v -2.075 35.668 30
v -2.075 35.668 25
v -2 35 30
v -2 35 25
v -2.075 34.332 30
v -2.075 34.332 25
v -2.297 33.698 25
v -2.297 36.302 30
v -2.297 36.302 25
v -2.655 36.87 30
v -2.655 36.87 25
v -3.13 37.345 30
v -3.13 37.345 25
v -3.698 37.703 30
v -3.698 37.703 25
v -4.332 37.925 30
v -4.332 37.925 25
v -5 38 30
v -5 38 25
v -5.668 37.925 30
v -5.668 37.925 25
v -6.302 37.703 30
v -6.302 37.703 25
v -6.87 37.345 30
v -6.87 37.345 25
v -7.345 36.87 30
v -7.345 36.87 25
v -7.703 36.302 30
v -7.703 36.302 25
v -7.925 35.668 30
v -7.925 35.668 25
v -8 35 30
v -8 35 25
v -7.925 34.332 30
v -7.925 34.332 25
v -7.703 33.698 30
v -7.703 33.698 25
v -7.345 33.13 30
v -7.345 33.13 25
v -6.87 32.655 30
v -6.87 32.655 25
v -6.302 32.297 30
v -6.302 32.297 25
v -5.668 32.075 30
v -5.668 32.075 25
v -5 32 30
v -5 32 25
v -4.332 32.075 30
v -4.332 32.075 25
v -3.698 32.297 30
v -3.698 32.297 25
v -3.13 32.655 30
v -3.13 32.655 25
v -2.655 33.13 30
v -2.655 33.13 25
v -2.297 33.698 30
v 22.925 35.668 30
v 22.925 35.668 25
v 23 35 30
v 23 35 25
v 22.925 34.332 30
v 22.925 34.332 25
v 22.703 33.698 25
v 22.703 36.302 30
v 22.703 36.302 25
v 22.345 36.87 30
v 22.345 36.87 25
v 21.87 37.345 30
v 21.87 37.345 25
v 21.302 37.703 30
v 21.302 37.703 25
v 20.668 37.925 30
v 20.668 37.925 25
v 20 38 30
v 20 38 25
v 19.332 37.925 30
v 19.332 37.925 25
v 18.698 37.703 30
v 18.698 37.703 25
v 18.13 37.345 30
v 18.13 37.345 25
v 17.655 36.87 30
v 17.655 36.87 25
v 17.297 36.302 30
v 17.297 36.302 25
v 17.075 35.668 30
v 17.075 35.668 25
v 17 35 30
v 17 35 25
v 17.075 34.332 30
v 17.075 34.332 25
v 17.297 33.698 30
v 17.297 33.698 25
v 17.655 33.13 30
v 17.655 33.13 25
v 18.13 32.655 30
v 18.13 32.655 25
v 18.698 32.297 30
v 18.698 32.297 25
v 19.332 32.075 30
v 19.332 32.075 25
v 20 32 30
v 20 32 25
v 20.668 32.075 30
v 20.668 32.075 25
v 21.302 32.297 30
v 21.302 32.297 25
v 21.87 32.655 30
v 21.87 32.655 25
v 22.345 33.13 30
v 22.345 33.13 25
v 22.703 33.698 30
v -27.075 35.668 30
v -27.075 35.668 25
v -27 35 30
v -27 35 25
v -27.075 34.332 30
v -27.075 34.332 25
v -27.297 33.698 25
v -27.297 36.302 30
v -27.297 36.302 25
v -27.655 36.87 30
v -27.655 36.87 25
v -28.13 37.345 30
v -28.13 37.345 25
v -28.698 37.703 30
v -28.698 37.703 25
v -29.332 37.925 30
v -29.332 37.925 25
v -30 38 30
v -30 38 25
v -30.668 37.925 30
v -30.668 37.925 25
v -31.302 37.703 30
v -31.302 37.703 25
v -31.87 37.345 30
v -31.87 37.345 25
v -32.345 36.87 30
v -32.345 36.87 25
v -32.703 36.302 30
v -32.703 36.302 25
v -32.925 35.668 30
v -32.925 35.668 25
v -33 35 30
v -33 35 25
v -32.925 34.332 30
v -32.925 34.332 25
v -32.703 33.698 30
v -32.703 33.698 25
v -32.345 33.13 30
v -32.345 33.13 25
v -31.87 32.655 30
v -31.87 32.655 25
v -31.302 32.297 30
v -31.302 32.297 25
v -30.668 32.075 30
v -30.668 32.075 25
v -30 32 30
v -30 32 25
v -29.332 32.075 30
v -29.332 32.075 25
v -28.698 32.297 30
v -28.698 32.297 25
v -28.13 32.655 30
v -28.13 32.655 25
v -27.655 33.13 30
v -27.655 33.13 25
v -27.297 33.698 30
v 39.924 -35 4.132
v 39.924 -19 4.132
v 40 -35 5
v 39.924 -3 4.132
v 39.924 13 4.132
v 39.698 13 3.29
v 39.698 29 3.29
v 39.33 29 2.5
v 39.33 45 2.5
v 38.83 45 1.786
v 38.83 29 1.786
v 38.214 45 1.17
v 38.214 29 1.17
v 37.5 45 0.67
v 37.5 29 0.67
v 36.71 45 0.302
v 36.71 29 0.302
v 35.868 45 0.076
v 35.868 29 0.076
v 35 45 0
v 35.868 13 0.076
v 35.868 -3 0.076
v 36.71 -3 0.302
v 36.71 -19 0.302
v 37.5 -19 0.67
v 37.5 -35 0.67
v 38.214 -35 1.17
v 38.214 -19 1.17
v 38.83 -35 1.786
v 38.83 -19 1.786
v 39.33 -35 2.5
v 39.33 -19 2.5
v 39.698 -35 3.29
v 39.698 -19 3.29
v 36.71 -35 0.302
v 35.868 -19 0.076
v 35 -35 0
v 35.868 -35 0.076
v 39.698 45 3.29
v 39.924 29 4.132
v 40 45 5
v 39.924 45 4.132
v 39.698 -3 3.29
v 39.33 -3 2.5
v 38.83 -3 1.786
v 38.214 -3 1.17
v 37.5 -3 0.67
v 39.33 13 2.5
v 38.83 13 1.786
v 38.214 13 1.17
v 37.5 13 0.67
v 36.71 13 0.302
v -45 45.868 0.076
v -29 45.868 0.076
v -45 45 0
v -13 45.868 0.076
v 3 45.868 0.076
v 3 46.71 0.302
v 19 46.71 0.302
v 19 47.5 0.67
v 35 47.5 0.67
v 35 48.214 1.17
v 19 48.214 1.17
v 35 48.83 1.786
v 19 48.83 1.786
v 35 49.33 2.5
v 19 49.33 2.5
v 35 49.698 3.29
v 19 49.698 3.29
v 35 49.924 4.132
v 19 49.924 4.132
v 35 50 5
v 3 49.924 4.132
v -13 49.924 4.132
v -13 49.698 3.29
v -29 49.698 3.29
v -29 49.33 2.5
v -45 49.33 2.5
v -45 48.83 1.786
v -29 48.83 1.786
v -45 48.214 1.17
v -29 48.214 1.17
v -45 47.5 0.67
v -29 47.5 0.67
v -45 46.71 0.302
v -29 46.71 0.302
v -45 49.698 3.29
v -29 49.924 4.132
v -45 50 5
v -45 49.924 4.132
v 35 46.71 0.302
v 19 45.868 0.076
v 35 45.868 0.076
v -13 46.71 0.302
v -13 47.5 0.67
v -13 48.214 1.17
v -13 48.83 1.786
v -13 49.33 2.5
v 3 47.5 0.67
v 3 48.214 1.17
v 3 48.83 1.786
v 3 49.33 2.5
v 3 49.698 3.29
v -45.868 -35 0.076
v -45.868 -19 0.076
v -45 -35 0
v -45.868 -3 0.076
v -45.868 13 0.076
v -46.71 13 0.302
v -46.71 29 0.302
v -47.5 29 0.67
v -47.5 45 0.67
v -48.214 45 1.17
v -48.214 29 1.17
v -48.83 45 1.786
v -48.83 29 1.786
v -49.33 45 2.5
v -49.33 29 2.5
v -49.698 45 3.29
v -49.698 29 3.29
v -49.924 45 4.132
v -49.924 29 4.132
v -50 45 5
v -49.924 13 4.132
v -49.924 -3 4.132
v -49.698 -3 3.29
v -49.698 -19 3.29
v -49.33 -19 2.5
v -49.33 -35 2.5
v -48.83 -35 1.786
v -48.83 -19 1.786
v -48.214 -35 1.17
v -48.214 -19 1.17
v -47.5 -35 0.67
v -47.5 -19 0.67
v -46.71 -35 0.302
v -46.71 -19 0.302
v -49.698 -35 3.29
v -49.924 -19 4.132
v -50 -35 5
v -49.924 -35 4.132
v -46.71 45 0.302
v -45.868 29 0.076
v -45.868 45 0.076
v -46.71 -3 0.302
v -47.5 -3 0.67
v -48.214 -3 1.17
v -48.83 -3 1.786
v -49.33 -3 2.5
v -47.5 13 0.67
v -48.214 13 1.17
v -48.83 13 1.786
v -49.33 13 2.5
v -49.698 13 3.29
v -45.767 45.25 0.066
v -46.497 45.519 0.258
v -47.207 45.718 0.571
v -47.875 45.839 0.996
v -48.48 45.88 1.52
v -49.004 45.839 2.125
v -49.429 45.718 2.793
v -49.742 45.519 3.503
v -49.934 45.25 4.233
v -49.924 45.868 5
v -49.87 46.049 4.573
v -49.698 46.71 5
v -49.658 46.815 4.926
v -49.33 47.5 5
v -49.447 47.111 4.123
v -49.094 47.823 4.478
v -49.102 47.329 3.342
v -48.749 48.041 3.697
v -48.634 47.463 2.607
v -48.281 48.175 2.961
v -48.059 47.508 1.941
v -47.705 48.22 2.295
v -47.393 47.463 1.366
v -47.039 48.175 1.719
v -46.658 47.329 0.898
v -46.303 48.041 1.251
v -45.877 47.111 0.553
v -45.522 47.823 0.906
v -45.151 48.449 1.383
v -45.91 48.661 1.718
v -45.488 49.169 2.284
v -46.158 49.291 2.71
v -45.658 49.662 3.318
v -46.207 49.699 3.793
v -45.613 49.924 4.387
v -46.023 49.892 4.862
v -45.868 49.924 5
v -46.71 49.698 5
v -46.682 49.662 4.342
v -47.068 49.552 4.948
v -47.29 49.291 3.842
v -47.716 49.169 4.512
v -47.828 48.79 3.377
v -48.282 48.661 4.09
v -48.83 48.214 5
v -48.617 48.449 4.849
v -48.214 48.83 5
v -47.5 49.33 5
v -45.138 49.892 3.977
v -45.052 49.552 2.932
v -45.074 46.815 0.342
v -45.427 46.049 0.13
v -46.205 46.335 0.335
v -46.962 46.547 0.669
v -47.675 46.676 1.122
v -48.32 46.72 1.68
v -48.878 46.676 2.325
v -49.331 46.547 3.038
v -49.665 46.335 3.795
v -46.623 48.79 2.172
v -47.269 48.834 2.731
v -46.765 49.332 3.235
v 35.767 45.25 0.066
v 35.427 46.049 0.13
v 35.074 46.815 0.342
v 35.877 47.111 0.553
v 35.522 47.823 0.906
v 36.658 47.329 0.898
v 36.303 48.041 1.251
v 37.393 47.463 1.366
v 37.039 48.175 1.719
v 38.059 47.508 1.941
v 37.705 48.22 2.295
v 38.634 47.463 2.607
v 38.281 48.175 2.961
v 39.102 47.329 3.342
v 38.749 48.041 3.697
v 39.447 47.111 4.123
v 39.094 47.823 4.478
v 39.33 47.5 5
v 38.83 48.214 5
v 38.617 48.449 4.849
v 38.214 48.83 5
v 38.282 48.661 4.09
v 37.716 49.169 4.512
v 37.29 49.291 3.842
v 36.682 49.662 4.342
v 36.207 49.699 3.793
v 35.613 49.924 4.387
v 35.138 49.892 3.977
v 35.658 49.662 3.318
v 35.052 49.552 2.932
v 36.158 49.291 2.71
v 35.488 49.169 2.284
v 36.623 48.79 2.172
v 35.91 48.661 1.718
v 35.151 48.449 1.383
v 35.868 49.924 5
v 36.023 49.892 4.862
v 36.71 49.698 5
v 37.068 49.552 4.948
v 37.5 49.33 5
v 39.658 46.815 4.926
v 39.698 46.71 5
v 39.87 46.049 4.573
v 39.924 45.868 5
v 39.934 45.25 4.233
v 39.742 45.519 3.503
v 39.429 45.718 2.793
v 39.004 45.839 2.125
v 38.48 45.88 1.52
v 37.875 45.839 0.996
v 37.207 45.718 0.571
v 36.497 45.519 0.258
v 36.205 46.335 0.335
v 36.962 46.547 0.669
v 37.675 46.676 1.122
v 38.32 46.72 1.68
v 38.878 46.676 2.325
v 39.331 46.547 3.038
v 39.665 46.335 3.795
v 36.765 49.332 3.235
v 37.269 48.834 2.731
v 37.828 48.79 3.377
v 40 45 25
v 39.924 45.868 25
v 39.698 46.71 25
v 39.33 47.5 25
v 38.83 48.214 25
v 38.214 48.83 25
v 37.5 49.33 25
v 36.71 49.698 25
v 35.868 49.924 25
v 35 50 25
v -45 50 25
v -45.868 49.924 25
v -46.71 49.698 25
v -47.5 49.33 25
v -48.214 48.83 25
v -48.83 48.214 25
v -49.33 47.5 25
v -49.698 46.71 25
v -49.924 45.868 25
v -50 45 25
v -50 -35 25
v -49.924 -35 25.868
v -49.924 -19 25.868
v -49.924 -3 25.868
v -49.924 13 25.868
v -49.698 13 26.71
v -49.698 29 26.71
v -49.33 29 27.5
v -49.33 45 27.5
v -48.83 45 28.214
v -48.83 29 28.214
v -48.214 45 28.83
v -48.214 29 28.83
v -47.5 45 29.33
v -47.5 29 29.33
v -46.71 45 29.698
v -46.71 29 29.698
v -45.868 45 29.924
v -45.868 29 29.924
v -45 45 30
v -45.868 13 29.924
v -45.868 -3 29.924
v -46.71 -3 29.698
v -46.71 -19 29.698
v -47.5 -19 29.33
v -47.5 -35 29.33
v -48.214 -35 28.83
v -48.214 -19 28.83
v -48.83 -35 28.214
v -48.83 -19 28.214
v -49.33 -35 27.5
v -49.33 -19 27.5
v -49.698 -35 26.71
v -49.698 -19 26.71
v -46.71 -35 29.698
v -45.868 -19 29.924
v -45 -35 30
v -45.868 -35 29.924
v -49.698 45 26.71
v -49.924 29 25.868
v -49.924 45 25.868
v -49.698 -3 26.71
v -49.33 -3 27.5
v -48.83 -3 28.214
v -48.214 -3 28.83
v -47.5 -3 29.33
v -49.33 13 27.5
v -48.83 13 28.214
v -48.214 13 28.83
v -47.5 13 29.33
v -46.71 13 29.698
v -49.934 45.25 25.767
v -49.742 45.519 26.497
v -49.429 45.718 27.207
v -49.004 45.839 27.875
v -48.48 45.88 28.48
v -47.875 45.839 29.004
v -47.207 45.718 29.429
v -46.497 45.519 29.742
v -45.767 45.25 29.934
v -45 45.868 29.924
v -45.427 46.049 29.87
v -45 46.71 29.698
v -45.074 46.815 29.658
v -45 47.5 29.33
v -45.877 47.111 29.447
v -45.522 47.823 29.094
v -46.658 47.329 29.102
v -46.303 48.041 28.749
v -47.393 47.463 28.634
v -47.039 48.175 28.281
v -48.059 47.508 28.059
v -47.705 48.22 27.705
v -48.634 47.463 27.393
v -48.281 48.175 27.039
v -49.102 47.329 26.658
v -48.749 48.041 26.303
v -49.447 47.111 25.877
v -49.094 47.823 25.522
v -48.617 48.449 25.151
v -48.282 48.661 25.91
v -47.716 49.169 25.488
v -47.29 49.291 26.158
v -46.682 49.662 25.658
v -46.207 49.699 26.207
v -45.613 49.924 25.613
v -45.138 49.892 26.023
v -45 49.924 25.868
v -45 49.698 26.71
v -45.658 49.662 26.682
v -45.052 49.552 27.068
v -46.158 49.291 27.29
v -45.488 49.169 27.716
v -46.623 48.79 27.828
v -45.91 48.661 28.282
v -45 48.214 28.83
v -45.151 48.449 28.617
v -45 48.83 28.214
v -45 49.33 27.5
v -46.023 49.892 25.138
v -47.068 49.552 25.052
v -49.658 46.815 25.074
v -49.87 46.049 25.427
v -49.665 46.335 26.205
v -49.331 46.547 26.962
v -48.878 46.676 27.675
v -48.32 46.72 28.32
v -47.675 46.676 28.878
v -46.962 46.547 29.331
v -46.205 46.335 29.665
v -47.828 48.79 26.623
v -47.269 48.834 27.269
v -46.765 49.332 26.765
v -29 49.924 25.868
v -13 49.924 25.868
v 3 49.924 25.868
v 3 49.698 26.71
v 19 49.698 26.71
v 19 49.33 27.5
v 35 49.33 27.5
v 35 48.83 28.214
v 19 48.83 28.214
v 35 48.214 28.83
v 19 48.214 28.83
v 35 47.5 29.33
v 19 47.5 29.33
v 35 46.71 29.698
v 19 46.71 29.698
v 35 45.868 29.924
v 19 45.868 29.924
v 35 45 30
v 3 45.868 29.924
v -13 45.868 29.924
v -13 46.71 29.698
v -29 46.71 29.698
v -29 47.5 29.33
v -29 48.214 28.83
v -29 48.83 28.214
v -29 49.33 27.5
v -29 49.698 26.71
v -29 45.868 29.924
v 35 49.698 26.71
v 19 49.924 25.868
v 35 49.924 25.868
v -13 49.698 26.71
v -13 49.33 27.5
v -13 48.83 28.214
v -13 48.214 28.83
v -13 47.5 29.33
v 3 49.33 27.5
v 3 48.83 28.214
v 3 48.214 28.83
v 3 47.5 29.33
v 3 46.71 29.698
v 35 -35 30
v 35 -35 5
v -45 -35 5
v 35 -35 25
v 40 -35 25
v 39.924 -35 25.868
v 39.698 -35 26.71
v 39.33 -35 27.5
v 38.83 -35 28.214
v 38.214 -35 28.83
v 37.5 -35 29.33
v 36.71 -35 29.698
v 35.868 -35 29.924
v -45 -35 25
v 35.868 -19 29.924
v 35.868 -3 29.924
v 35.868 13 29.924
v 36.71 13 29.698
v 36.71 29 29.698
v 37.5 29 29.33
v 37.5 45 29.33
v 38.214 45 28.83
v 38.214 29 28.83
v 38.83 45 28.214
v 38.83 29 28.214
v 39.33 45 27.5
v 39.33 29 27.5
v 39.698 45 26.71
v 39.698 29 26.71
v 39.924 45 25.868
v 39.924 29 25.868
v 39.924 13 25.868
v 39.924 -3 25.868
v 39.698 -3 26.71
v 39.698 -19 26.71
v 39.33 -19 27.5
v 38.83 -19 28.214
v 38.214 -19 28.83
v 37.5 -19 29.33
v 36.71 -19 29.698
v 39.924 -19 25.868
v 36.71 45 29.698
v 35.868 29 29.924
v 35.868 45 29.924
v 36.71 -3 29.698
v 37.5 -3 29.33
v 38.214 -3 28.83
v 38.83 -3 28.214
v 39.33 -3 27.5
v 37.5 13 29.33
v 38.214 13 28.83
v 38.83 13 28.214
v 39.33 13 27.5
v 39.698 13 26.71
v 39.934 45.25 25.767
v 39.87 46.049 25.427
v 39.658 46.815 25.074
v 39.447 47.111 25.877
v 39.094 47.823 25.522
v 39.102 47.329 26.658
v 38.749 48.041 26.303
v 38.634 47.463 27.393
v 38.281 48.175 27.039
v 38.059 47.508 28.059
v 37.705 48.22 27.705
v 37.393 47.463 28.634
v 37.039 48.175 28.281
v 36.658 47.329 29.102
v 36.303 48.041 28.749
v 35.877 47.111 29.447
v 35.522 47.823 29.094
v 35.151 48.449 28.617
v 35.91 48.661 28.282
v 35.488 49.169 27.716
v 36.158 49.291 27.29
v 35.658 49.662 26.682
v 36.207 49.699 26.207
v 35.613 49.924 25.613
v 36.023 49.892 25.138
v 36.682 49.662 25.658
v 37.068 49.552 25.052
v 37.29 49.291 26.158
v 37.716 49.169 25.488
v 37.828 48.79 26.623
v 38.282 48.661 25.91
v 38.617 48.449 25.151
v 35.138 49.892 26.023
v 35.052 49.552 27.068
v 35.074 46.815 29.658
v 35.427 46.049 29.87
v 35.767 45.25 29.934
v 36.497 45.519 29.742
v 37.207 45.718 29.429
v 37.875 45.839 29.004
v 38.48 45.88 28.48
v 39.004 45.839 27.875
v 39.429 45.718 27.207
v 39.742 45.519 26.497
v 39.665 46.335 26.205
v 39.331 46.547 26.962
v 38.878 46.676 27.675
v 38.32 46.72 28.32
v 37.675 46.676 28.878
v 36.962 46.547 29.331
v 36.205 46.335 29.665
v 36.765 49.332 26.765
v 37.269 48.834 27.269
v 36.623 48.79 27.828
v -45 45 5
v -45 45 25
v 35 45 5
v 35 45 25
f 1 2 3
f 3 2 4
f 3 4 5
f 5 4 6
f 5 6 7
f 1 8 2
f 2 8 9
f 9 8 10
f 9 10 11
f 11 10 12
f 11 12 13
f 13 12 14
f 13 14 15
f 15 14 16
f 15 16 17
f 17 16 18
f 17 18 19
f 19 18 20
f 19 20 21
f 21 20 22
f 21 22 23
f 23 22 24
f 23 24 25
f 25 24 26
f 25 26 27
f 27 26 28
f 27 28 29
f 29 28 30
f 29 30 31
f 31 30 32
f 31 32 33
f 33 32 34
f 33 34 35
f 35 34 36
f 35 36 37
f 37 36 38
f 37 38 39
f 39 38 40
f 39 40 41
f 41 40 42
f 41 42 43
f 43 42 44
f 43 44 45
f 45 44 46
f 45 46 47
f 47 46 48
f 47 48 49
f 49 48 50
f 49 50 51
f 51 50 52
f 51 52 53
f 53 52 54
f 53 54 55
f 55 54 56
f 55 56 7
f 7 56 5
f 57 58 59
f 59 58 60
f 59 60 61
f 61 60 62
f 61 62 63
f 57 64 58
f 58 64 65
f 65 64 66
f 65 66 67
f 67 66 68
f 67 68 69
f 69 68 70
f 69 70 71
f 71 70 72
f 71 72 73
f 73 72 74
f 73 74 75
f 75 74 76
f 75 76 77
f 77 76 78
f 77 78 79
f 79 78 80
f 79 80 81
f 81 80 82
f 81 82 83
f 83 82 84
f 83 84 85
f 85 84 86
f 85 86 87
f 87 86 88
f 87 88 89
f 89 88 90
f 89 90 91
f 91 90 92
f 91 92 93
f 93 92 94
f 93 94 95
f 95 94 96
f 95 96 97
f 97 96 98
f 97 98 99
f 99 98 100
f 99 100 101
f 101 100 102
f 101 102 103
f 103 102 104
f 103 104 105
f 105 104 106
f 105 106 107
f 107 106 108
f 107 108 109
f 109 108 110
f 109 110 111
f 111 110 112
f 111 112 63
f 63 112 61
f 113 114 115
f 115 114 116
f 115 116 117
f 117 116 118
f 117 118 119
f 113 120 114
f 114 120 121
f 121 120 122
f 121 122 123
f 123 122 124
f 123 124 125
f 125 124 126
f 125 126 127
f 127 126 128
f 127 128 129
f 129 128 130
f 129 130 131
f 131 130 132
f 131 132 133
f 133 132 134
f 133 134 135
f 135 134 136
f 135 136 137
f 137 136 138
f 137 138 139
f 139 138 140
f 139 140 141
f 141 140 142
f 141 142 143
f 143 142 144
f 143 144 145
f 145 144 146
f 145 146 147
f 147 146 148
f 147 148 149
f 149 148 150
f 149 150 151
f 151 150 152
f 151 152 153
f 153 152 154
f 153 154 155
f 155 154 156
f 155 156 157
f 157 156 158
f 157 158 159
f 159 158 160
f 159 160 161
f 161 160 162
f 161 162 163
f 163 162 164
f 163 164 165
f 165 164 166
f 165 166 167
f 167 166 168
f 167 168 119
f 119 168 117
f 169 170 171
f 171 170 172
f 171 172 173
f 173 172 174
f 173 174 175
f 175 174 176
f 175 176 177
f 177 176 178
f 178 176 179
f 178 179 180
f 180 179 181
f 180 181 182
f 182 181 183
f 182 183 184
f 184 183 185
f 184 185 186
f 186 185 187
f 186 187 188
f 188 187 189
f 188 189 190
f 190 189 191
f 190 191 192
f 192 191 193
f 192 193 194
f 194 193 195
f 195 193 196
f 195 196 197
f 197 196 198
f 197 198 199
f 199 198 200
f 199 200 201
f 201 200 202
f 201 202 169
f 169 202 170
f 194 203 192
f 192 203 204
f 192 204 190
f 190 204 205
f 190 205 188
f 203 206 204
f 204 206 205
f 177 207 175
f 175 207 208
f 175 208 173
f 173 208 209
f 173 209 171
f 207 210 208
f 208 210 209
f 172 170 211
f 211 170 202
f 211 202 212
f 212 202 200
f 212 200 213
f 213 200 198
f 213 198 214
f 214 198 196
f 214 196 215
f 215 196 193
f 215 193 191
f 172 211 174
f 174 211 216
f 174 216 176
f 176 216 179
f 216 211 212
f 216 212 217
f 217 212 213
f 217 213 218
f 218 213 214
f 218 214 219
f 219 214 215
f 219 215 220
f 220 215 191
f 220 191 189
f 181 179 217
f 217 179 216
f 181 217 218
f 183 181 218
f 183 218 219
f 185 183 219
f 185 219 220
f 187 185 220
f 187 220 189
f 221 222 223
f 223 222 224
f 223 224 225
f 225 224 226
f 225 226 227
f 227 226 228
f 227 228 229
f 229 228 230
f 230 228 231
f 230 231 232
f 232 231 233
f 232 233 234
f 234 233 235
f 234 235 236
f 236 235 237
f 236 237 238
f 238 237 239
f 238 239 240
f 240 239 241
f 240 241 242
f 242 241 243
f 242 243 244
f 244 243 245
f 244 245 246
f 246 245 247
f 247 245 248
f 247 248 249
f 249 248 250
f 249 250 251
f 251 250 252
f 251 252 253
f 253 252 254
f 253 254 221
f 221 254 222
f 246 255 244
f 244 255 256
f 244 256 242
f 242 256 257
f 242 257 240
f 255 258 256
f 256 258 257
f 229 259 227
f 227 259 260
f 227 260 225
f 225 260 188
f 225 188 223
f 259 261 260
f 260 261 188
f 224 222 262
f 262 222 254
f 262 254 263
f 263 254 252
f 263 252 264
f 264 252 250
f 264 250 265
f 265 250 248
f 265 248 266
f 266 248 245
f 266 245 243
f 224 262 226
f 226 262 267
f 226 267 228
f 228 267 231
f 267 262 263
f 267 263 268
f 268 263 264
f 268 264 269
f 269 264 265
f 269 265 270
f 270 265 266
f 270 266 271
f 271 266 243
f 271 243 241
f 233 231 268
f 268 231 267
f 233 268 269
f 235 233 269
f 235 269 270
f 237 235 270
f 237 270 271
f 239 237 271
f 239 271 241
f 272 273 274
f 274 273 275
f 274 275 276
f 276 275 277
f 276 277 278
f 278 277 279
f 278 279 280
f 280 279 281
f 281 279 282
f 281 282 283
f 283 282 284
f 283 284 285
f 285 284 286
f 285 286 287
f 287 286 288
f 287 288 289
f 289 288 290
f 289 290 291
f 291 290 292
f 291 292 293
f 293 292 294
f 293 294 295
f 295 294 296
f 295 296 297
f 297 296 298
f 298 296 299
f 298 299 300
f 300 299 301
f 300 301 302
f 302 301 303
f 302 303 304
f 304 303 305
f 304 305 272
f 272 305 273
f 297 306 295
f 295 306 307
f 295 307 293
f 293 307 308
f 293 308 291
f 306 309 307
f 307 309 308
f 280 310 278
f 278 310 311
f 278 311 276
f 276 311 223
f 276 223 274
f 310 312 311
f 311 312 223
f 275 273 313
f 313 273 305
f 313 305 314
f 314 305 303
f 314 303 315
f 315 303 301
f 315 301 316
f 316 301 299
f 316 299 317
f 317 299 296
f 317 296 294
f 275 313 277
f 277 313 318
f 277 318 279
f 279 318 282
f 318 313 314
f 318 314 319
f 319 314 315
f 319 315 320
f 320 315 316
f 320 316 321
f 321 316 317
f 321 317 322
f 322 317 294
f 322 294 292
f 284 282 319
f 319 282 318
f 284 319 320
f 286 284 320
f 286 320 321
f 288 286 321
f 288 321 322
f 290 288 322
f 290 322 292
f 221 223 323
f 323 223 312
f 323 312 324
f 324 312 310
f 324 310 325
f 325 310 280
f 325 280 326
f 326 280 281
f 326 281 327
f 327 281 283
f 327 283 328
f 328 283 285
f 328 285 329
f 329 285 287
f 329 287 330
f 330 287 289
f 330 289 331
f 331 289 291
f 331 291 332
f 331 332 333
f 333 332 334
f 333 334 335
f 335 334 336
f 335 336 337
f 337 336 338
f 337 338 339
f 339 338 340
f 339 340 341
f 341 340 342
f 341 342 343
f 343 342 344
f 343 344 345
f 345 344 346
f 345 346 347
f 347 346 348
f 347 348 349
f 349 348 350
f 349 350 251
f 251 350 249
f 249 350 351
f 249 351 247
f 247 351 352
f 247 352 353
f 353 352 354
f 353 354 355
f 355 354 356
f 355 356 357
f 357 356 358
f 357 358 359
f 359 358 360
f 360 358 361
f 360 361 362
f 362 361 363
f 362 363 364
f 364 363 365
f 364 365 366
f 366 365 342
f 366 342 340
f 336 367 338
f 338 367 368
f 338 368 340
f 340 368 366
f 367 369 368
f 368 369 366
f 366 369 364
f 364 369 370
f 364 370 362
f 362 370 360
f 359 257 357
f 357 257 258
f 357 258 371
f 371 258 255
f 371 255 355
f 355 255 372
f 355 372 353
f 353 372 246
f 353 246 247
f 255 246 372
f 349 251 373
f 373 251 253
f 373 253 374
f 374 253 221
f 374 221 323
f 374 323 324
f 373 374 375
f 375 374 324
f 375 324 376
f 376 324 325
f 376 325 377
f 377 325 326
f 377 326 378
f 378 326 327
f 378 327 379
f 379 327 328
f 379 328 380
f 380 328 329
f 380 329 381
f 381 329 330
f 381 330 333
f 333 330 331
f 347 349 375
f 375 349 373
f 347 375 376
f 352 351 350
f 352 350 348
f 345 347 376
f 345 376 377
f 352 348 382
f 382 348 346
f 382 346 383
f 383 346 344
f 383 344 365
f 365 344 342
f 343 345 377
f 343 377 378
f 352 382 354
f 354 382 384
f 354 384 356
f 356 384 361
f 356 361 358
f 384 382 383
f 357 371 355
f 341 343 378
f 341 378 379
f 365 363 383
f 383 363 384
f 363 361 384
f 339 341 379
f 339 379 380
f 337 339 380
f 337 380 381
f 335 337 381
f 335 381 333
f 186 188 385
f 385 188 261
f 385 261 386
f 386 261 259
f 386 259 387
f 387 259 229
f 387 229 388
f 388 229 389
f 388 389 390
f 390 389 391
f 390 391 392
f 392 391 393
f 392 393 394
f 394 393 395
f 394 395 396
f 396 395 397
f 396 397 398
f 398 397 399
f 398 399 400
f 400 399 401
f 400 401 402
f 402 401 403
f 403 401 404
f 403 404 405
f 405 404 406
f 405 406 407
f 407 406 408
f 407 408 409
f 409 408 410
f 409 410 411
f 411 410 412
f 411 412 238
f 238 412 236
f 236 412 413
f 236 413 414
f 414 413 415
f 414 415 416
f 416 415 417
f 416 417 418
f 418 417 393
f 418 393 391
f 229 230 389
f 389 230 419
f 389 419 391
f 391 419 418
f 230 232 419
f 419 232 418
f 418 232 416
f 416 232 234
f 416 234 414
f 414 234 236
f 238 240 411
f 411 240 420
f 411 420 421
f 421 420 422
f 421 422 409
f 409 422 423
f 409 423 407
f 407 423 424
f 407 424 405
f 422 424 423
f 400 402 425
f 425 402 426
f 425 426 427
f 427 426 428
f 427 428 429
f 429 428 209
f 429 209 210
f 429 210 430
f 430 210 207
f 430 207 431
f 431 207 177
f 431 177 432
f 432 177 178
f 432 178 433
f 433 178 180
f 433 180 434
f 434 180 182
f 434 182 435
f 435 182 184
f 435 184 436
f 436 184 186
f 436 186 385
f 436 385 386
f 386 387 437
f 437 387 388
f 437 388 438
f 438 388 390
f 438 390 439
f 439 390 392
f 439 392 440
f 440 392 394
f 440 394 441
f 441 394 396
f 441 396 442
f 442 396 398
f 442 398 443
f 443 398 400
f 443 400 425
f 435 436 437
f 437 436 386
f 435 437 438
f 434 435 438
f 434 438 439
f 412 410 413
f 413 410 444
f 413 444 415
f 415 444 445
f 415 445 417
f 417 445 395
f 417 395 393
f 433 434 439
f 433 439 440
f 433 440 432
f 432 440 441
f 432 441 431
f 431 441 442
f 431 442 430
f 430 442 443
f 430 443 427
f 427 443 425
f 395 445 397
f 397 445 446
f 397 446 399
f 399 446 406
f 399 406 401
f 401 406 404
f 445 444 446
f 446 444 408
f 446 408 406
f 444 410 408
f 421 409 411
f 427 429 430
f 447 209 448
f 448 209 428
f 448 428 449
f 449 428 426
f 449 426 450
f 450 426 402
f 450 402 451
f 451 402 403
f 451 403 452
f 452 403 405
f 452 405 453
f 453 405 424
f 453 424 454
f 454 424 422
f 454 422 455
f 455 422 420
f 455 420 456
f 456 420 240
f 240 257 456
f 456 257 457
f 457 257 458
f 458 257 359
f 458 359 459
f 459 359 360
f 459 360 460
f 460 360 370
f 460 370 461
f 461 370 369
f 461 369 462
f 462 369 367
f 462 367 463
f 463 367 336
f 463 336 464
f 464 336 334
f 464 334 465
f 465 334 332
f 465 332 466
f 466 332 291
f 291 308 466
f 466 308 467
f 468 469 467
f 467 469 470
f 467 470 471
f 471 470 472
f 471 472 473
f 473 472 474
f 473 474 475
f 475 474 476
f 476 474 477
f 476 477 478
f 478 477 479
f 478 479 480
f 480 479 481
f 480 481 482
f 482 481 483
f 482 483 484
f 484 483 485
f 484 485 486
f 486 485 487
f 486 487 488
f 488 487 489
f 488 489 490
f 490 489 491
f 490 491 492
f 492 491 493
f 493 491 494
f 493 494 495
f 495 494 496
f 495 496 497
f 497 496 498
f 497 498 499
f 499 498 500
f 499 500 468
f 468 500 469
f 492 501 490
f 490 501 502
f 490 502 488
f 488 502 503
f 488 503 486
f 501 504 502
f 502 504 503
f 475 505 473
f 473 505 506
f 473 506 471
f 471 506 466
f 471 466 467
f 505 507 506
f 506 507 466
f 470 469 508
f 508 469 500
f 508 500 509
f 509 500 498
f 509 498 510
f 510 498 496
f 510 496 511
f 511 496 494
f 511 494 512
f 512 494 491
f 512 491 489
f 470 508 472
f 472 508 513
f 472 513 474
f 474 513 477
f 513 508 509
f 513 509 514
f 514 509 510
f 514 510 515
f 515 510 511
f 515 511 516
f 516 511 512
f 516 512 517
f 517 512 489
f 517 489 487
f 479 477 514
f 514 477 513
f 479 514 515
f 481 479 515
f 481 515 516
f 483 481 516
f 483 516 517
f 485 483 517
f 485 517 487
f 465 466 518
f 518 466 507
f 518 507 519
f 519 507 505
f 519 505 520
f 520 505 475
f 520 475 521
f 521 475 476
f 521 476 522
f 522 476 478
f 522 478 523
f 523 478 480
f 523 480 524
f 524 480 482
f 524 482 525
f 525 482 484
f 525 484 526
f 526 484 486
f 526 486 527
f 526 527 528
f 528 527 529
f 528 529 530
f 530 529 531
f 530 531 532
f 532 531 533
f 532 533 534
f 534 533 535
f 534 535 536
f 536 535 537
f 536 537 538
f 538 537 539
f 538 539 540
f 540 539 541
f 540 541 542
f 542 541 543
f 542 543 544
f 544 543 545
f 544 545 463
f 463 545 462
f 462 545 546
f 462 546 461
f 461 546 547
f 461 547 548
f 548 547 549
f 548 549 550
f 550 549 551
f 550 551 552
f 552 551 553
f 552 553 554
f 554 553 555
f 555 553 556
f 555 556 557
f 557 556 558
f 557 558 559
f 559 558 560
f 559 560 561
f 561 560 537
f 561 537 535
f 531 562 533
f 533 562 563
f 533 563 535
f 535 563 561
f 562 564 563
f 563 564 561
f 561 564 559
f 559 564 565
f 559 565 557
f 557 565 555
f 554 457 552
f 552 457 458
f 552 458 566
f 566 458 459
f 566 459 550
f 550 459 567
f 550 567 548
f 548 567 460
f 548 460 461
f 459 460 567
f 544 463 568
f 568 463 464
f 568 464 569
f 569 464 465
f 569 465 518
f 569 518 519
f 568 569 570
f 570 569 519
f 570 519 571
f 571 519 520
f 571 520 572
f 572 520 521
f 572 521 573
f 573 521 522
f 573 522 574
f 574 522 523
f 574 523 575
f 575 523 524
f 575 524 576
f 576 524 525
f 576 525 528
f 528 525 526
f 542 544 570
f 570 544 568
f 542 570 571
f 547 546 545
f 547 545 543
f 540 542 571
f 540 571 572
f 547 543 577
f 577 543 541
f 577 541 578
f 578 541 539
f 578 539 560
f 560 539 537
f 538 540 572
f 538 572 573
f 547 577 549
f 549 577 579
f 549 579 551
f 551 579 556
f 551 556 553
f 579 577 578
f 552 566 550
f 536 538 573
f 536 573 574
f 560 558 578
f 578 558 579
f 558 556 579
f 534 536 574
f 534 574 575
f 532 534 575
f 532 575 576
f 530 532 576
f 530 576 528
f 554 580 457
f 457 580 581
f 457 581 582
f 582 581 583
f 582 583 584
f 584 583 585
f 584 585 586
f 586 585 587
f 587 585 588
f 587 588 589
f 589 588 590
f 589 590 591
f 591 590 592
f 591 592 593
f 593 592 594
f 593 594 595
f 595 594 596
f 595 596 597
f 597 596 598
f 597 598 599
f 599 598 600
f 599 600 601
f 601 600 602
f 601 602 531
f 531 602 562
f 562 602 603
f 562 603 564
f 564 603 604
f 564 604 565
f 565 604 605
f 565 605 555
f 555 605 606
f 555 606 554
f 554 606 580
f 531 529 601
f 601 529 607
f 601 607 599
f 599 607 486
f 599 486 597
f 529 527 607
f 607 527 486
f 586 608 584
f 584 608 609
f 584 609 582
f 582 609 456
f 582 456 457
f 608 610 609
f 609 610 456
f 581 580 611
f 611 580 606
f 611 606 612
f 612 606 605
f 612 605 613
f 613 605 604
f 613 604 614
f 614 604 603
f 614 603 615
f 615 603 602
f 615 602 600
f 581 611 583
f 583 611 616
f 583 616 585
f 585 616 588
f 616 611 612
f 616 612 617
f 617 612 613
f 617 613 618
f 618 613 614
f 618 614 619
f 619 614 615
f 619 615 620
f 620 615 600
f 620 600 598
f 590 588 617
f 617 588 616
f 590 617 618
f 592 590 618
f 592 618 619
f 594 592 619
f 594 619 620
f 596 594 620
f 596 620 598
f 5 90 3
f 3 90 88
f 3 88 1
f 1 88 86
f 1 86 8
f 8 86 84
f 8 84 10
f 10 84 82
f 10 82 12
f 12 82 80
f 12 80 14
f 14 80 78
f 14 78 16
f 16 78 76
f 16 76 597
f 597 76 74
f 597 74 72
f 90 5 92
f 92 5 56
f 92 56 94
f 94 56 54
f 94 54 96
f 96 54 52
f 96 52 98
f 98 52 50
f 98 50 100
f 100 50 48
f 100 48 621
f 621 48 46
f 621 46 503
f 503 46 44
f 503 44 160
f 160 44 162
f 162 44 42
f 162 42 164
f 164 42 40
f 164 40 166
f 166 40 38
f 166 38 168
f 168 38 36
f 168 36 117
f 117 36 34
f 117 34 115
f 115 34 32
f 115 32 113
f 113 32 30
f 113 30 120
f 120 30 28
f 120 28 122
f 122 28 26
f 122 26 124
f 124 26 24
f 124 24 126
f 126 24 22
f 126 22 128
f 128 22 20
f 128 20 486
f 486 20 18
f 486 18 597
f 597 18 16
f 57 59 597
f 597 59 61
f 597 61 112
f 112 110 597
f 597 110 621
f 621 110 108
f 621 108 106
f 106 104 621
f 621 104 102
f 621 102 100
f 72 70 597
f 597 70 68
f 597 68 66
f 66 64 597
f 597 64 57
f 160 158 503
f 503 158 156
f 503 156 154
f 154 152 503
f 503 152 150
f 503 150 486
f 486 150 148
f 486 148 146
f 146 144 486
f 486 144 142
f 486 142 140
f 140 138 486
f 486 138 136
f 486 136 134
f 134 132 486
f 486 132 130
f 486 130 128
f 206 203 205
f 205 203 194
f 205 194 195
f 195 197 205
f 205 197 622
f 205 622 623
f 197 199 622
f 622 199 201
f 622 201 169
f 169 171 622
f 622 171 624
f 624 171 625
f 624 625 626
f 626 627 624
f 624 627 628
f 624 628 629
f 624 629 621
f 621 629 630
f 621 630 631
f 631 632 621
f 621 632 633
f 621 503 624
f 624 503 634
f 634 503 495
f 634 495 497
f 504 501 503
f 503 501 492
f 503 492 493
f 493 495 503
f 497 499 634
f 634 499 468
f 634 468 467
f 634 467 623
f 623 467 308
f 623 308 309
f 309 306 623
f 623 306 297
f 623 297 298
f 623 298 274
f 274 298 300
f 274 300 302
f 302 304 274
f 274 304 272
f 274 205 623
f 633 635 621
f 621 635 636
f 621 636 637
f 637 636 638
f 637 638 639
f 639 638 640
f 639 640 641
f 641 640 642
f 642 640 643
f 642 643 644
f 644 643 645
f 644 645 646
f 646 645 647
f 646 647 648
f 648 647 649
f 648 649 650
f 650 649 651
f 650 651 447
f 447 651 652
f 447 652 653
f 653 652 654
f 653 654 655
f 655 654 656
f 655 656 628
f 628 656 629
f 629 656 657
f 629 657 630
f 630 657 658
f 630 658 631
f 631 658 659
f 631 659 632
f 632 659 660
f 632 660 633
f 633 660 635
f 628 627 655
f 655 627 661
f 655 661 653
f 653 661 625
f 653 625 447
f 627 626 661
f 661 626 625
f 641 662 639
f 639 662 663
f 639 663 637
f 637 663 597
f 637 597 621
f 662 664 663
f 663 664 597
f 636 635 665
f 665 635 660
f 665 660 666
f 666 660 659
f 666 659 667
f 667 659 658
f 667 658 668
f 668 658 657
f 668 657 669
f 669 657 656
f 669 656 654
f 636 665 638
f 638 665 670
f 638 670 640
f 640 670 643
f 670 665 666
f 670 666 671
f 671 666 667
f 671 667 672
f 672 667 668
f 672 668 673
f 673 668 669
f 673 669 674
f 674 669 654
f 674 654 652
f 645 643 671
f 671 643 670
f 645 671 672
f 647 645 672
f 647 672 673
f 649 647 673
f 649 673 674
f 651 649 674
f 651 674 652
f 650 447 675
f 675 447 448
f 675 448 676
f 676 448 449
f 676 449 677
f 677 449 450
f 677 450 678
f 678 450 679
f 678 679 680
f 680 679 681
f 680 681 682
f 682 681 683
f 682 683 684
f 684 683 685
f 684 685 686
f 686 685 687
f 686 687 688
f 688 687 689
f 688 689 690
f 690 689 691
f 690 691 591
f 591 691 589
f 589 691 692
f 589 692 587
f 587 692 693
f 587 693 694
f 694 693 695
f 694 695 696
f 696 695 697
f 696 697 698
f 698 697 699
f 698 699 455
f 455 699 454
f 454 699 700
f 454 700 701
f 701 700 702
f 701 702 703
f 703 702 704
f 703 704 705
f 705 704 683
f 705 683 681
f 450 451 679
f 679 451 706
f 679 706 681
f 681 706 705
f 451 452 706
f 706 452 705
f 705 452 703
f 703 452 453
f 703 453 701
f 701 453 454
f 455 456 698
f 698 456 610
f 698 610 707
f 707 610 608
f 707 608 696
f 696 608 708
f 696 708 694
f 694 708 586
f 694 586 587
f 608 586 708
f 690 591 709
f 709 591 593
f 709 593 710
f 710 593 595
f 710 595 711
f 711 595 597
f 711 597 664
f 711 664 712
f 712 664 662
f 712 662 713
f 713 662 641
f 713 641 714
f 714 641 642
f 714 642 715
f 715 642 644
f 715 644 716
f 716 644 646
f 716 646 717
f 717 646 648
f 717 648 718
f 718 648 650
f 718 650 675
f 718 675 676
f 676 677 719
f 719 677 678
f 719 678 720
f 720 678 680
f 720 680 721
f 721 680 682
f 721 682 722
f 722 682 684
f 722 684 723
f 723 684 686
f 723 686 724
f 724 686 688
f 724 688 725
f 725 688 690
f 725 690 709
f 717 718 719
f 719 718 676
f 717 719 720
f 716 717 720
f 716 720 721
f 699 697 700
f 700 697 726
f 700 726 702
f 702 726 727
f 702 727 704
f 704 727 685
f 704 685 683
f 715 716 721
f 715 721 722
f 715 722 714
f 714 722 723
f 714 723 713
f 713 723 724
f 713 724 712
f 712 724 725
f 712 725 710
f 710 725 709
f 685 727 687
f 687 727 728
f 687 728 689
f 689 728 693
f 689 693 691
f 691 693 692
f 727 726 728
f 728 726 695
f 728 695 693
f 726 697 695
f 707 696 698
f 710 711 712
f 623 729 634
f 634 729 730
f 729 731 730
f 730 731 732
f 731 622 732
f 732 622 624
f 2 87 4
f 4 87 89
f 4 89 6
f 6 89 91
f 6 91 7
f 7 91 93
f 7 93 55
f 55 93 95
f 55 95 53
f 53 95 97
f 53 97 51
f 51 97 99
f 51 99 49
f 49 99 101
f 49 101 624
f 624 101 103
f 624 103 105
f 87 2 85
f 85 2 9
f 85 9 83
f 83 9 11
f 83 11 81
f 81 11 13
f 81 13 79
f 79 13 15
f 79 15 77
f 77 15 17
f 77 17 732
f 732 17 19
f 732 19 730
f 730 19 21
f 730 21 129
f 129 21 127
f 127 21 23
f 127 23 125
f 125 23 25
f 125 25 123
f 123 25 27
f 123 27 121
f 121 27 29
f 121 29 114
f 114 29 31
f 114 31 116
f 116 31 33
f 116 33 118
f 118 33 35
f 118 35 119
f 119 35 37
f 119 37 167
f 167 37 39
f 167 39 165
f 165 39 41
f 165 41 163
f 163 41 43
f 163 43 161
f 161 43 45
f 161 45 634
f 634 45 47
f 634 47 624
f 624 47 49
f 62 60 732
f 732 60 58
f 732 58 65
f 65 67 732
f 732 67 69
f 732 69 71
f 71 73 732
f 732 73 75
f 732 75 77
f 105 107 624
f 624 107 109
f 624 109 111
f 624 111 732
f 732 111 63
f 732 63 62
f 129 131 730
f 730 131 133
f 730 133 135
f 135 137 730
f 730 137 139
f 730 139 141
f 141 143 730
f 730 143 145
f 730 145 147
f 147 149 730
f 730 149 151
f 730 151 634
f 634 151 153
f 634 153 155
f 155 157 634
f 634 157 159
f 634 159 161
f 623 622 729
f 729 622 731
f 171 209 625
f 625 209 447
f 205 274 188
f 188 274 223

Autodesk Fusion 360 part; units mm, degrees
sketch "Skizze1" plane through (0, 0, 0) normal (0, 0, 1) x (1, 0, 0)
  line L0 (-50, 50) -> (40, 50)
  line L1 (40, 50) -> (40, -35)
  line L2 (40, -35) -> (-50, -35)
  line L3 (-50, -35) -> (-50, 50)
  dimension "d1" = 90
  dimension "d2" = 85
extrude "Extrusion1" add sketch "Skizze1" along normal blind 30
shell "Schale1" thickness 5 removed faces 1 at (10, -35, 20)
fillet "Abrundung1" radius 5 1 edges at (-5, 50, 30)
fillet "Abrundung2" radius 5 3 edges at (40, 5, 30) (40, 48.5355, 28.5355) (40, 50, 12.5)
fillet "Abrundung3" radius 5 3 edges at (-50, 50, 12.5) (-50, 48.5355, 28.5355) (-50, 5, 30)
fillet "Abrundung4" radius 5 5 edges at (-50, 5, 0) (-48.5355, 48.5355, 0) (-5, 50, 0) (38.5355, 48.5355, 0) (40, 5, 0)
sketch "Skizze2" plane through (0, 0, 30) normal (0, 0, 1) x (-1, 0, 0)
  line L0 (45, -45) -> (45, 35)
  line L1 (45, 35) -> (-35, 35)
  line L2 (-35, 35) -> (-35, -45)
  line L3 (-35, -45) -> (45, -45)
  circle A0 centre (5, -35) radius 3
  circle A1 centre (30, -35) radius 3
  circle A2 centre (-20, -35) radius 3
extrude "Extrusion2" cut sketch "Skizze2" along normal mid plane 10 contours A1
extrude "Extrusion3" cut sketch "Skizze2" along normal mid plane 10 contours A0 | A2
